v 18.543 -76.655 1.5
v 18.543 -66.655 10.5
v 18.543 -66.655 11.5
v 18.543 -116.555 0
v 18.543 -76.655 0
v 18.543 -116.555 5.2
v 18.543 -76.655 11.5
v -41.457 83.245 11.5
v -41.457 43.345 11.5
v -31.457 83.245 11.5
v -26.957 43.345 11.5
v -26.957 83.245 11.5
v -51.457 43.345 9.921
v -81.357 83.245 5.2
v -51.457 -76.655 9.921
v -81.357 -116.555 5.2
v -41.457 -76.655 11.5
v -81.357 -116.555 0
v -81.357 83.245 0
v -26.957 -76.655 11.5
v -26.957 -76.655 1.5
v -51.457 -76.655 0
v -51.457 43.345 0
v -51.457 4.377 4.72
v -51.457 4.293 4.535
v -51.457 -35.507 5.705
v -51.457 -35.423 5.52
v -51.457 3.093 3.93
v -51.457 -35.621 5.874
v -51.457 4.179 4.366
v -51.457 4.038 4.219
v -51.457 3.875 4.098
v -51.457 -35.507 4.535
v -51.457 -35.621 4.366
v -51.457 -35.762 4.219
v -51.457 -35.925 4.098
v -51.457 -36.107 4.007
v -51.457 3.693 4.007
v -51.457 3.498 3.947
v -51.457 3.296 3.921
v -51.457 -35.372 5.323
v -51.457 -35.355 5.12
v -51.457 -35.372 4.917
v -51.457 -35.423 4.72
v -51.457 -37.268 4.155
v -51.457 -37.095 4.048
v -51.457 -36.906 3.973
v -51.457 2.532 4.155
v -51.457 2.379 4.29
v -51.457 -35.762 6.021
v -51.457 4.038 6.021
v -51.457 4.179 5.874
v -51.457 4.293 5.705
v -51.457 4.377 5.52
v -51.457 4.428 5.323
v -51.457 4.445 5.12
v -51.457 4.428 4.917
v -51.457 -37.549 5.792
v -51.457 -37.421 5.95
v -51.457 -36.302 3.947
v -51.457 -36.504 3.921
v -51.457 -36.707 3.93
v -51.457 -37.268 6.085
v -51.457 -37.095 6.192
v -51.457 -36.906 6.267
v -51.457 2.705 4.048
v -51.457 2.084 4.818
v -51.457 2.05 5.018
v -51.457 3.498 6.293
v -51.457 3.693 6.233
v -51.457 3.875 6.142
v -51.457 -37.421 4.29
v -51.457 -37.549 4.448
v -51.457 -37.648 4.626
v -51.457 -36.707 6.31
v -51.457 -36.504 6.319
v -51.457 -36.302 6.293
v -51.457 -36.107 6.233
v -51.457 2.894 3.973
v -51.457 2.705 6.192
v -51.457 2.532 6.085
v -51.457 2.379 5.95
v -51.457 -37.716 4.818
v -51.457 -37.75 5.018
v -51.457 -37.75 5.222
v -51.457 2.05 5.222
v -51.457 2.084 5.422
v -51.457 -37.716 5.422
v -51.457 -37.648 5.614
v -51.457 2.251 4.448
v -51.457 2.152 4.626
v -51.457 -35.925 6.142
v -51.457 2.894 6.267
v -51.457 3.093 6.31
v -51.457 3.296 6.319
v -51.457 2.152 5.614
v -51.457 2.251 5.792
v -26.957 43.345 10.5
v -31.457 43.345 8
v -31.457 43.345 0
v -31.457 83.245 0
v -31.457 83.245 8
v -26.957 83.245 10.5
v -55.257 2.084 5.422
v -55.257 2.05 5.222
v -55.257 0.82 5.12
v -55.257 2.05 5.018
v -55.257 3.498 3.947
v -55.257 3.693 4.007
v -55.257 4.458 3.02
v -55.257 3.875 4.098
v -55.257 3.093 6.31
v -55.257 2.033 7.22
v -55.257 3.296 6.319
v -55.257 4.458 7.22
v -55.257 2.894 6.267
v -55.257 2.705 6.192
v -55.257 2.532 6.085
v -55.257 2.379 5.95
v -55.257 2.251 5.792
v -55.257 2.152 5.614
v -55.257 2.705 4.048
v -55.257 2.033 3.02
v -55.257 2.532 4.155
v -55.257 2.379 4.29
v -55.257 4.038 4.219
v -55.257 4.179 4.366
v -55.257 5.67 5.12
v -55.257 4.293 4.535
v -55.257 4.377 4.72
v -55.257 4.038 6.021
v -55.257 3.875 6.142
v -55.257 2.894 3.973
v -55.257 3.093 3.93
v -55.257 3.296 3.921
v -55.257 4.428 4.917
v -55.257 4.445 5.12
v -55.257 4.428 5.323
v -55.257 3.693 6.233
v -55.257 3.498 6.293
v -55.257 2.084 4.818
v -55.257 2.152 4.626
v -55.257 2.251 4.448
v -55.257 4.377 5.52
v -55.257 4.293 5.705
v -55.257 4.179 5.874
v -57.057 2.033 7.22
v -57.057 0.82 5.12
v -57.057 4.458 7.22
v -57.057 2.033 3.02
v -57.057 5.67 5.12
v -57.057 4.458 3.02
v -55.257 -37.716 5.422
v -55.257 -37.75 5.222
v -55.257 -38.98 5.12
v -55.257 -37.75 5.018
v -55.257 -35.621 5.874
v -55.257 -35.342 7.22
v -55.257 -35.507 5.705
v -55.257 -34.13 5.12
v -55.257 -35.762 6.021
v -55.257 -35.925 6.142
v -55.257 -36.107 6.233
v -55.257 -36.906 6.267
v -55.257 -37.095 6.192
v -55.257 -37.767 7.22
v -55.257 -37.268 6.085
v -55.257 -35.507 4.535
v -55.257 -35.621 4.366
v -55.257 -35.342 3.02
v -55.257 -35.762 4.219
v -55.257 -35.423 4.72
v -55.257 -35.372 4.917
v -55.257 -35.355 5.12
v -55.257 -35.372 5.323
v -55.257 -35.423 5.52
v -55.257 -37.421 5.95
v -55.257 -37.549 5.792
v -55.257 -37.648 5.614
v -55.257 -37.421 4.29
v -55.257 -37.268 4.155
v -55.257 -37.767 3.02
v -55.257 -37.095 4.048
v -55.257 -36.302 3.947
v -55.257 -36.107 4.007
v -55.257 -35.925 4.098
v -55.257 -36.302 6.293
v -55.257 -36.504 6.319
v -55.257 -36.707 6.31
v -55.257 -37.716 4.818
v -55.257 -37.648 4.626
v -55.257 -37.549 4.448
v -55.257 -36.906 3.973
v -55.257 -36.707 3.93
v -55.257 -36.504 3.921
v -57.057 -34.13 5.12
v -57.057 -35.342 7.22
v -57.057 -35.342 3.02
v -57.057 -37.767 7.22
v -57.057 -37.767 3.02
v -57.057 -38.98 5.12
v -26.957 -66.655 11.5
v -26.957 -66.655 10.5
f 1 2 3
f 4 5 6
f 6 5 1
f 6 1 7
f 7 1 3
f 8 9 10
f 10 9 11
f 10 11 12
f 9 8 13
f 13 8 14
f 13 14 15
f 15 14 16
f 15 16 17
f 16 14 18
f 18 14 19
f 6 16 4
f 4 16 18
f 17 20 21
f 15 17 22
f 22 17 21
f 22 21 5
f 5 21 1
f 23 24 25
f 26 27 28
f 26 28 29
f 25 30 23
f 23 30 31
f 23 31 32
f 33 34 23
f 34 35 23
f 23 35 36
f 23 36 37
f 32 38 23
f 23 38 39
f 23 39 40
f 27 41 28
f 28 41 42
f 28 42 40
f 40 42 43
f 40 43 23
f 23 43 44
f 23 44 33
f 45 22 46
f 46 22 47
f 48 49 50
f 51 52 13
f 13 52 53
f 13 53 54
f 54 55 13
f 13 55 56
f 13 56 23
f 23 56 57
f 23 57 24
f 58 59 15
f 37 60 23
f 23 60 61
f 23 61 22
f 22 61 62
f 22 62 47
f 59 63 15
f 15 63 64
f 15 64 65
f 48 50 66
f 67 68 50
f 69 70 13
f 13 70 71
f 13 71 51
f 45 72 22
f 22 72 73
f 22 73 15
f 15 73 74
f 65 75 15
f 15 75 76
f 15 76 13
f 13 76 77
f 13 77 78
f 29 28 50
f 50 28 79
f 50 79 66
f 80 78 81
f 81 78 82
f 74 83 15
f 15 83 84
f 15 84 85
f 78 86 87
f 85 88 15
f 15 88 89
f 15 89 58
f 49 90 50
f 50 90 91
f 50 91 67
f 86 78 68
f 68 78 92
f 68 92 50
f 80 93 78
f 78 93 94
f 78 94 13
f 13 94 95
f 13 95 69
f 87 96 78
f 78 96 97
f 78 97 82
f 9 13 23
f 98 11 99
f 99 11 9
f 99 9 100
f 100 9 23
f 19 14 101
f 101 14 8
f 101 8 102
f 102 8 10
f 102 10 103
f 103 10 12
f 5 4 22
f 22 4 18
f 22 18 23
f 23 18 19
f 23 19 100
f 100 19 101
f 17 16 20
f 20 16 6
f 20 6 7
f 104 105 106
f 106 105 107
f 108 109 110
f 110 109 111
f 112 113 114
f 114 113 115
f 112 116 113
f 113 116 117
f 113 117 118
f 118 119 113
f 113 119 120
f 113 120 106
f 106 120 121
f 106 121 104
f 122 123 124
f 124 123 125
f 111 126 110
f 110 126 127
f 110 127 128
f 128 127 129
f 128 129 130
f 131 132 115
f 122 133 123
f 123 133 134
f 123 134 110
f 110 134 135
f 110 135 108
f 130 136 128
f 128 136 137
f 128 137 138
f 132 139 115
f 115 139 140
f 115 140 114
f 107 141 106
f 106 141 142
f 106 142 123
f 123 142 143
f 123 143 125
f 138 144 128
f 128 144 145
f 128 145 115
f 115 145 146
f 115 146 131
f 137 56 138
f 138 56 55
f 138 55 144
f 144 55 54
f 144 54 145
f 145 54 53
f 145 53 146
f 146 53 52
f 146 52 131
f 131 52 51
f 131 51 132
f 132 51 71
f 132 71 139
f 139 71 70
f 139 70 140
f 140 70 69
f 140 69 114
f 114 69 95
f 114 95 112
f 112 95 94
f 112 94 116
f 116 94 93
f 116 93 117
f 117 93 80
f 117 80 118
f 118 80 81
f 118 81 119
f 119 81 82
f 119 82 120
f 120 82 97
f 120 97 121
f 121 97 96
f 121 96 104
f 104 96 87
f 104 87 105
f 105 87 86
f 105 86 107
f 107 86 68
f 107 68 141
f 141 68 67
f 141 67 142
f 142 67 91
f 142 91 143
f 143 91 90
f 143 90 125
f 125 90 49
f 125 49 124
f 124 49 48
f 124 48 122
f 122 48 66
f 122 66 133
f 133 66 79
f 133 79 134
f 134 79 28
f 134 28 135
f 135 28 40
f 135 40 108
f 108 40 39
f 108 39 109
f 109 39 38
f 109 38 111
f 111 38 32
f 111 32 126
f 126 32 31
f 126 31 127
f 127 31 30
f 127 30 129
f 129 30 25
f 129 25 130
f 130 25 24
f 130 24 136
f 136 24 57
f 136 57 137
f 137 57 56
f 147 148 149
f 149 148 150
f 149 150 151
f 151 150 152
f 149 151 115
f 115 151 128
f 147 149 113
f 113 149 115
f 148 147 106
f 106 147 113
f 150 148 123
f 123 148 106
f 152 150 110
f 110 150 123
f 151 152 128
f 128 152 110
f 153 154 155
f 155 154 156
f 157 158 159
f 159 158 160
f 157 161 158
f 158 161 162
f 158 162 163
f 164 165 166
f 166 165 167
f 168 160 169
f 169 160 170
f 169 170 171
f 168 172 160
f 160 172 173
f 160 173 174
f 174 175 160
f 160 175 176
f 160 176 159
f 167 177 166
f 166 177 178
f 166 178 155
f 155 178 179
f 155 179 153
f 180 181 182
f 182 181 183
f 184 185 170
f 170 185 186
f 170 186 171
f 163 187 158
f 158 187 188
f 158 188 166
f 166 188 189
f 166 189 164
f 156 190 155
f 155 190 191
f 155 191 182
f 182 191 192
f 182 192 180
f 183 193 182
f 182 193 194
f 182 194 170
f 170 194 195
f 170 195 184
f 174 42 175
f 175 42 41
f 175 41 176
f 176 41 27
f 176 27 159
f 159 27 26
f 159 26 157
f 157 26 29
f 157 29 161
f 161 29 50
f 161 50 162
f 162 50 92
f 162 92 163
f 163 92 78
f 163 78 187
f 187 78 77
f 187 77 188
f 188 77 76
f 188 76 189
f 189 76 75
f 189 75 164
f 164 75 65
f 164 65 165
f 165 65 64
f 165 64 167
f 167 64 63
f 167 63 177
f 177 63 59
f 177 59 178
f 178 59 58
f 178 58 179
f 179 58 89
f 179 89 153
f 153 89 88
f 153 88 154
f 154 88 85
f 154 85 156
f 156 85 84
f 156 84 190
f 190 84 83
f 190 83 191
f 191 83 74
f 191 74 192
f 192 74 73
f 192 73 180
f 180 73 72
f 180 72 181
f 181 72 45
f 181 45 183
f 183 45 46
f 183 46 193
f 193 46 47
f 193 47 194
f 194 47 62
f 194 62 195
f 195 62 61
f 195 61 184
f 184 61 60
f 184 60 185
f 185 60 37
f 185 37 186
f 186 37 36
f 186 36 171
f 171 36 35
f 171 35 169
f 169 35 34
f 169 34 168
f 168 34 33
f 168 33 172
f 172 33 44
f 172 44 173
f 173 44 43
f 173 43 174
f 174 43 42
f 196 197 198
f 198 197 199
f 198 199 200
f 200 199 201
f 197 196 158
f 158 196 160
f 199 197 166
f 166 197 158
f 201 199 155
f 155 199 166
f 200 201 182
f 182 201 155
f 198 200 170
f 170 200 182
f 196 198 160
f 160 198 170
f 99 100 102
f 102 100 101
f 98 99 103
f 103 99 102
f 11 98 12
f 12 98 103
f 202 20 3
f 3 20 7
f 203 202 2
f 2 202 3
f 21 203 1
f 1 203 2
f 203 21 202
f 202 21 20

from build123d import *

# Parameters (mm, degrees)
DODANIE_WYCI_GNI_CIE1_DEPTH = 5.2
SZKIC3_W                    = 60
SZKIC3_H                    = 159.9
SZKIC5_W                    = 99.9
SZKIC5_H                    = 199.8
SZKIC6_W                    = 49.271239353
SZKIC6_H                    = 120
WYTNIJ_WYCI_GNI_CIE1_DEPTH  = 78
WYTNIJ_WYCI_GNI_CIE2_DEPTH  = 5.6
SZKIC9_R                    = 2.424871131
SZKIC9_R_2                  = 1.2
DODANIE_WYCI_GNI_CIE3_DEPTH = 3.8
SZKIC10_W                   = 50
SZKIC10_H                   = 39.9
WYTNIJ_WYCI_GNI_CIE4_DEPTH  = 24
DODANIE_WYCI_GNI_CIE4_DEPTH = 39.9
DODANIE_WYCI_GNI_CIE5_DEPTH = 45.5


with BuildPart() as part:
    # Szkic2 → Dodanie-wyciągnięcie1 (new body)
    with BuildSketch(Plane.XY):
        Polygon((18.542832418, 83.245366469), (18.542832418, 43.345366469), (-51.457167582, 43.345366469), (-51.457167582, -76.654633531), (18.542832418, -76.654633531), (18.542832418, -116.554633531), (-81.357167582, -116.554633531), (-81.357167582, 83.245366469), align=None)
    extrude(amount=DODANIE_WYCI_GNI_CIE1_DEPTH)

    # Szkic3 → Wyciągnięcie po profilach3 section 0
    with BuildSketch(Plane.XY.offset(11.5)):
        with Locations((-11.457167582, 3.295366469)):
            Rectangle(SZKIC3_W, SZKIC3_H)
    # Szkic5 → Wyciągnięcie po profilach3 section 1
    with BuildSketch(Plane.XY.offset(5.2)):
        with Locations((-31.407167582, -16.654633531)):
            Rectangle(SZKIC5_W, SZKIC5_H)
    loft()

    # Szkic6 → Wytnij-wyciągnięcie1 (cut)
    with BuildSketch(Plane(origin=(-51.457167582, 0, 0), x_dir=(0, 0, -1), z_dir=(1, 0, 0))):
        with Locations((-24.635619677, -16.654633531)):
            Rectangle(SZKIC6_W, SZKIC6_H)
    extrude(amount=WYTNIJ_WYCI_GNI_CIE1_DEPTH, mode=Mode.SUBTRACT)

    # Szkic7 → Wytnij-wyciągnięcie2 (cut)
    with BuildSketch(Plane(origin=(-51.457167582, 0, 0), x_dir=(0, 0, -1), z_dir=(1, 0, 0))):
        Polygon((-5.12, -34.1297624), (-7.22, -35.342197966), (-7.22, -37.767069096), (-5.12, -38.979504662), (-3.02, -37.767069096), (-3.02, -35.342197966), align=None)
        Polygon((-5.12, 5.6702376), (-7.22, 4.457802034), (-7.22, 2.032930904), (-5.12, 0.820495338), (-3.02, 2.032930904), (-3.02, 4.457802034), align=None)
    extrude(amount=-WYTNIJ_WYCI_GNI_CIE2_DEPTH, mode=Mode.SUBTRACT)

    # Szkic9 → Dodanie-wyciągnięcie3 (add)
    with BuildSketch(Plane(origin=(-51.457167582, 0, 0), x_dir=(0, 0, -1), z_dir=(1, 0, 0))):
        with Locations((-5.12, 3.245366469)):
            Circle(SZKIC9_R)
        with Locations((-5.12, 3.245366469)):
            Circle(SZKIC9_R_2, mode=Mode.SUBTRACT)
        with Locations((-5.12, -36.554633531)):
            Circle(SZKIC9_R)
        with Locations((-5.12, -36.554633531)):
            Circle(SZKIC9_R_2, mode=Mode.SUBTRACT)
    extrude(amount=-DODANIE_WYCI_GNI_CIE3_DEPTH)

    # Szkic10 → Wytnij-wyciągnięcie4 (cut)
    with BuildSketch(Plane.XY.offset(11.5)):
        with Locations((-6.457167582, 63.295366469)):
            Rectangle(SZKIC10_W, SZKIC10_H)
    extrude(amount=-WYTNIJ_WYCI_GNI_CIE4_DEPTH, mode=Mode.SUBTRACT)

    # Szkic12 → Dodanie-wyciągnięcie4 (add)
    with BuildSketch(Plane(origin=(0, 83.245366469, 0), x_dir=(1, 0, 0), z_dir=(0, 1, 0))):
        Polygon((-31.457167582, -11.5), (-26.957167582, -11.5), (-26.957167582, -10.5), (-31.457167582, -8), align=None)
    extrude(amount=-DODANIE_WYCI_GNI_CIE4_DEPTH)

    # Szkic13 → Dodanie-wyciągnięcie5 (add)
    with BuildSketch(Plane(origin=(18.542832418, 0, 0), x_dir=(0, 0, -1), z_dir=(1, 0, 0))):
        Polygon((-11.5, -76.654633531), (-1.5, -76.654633531), (-10.5, -66.654633531), (-11.5, -66.654633531), align=None)
    extrude(amount=-DODANIE_WYCI_GNI_CIE5_DEPTH)


solid = part.part
